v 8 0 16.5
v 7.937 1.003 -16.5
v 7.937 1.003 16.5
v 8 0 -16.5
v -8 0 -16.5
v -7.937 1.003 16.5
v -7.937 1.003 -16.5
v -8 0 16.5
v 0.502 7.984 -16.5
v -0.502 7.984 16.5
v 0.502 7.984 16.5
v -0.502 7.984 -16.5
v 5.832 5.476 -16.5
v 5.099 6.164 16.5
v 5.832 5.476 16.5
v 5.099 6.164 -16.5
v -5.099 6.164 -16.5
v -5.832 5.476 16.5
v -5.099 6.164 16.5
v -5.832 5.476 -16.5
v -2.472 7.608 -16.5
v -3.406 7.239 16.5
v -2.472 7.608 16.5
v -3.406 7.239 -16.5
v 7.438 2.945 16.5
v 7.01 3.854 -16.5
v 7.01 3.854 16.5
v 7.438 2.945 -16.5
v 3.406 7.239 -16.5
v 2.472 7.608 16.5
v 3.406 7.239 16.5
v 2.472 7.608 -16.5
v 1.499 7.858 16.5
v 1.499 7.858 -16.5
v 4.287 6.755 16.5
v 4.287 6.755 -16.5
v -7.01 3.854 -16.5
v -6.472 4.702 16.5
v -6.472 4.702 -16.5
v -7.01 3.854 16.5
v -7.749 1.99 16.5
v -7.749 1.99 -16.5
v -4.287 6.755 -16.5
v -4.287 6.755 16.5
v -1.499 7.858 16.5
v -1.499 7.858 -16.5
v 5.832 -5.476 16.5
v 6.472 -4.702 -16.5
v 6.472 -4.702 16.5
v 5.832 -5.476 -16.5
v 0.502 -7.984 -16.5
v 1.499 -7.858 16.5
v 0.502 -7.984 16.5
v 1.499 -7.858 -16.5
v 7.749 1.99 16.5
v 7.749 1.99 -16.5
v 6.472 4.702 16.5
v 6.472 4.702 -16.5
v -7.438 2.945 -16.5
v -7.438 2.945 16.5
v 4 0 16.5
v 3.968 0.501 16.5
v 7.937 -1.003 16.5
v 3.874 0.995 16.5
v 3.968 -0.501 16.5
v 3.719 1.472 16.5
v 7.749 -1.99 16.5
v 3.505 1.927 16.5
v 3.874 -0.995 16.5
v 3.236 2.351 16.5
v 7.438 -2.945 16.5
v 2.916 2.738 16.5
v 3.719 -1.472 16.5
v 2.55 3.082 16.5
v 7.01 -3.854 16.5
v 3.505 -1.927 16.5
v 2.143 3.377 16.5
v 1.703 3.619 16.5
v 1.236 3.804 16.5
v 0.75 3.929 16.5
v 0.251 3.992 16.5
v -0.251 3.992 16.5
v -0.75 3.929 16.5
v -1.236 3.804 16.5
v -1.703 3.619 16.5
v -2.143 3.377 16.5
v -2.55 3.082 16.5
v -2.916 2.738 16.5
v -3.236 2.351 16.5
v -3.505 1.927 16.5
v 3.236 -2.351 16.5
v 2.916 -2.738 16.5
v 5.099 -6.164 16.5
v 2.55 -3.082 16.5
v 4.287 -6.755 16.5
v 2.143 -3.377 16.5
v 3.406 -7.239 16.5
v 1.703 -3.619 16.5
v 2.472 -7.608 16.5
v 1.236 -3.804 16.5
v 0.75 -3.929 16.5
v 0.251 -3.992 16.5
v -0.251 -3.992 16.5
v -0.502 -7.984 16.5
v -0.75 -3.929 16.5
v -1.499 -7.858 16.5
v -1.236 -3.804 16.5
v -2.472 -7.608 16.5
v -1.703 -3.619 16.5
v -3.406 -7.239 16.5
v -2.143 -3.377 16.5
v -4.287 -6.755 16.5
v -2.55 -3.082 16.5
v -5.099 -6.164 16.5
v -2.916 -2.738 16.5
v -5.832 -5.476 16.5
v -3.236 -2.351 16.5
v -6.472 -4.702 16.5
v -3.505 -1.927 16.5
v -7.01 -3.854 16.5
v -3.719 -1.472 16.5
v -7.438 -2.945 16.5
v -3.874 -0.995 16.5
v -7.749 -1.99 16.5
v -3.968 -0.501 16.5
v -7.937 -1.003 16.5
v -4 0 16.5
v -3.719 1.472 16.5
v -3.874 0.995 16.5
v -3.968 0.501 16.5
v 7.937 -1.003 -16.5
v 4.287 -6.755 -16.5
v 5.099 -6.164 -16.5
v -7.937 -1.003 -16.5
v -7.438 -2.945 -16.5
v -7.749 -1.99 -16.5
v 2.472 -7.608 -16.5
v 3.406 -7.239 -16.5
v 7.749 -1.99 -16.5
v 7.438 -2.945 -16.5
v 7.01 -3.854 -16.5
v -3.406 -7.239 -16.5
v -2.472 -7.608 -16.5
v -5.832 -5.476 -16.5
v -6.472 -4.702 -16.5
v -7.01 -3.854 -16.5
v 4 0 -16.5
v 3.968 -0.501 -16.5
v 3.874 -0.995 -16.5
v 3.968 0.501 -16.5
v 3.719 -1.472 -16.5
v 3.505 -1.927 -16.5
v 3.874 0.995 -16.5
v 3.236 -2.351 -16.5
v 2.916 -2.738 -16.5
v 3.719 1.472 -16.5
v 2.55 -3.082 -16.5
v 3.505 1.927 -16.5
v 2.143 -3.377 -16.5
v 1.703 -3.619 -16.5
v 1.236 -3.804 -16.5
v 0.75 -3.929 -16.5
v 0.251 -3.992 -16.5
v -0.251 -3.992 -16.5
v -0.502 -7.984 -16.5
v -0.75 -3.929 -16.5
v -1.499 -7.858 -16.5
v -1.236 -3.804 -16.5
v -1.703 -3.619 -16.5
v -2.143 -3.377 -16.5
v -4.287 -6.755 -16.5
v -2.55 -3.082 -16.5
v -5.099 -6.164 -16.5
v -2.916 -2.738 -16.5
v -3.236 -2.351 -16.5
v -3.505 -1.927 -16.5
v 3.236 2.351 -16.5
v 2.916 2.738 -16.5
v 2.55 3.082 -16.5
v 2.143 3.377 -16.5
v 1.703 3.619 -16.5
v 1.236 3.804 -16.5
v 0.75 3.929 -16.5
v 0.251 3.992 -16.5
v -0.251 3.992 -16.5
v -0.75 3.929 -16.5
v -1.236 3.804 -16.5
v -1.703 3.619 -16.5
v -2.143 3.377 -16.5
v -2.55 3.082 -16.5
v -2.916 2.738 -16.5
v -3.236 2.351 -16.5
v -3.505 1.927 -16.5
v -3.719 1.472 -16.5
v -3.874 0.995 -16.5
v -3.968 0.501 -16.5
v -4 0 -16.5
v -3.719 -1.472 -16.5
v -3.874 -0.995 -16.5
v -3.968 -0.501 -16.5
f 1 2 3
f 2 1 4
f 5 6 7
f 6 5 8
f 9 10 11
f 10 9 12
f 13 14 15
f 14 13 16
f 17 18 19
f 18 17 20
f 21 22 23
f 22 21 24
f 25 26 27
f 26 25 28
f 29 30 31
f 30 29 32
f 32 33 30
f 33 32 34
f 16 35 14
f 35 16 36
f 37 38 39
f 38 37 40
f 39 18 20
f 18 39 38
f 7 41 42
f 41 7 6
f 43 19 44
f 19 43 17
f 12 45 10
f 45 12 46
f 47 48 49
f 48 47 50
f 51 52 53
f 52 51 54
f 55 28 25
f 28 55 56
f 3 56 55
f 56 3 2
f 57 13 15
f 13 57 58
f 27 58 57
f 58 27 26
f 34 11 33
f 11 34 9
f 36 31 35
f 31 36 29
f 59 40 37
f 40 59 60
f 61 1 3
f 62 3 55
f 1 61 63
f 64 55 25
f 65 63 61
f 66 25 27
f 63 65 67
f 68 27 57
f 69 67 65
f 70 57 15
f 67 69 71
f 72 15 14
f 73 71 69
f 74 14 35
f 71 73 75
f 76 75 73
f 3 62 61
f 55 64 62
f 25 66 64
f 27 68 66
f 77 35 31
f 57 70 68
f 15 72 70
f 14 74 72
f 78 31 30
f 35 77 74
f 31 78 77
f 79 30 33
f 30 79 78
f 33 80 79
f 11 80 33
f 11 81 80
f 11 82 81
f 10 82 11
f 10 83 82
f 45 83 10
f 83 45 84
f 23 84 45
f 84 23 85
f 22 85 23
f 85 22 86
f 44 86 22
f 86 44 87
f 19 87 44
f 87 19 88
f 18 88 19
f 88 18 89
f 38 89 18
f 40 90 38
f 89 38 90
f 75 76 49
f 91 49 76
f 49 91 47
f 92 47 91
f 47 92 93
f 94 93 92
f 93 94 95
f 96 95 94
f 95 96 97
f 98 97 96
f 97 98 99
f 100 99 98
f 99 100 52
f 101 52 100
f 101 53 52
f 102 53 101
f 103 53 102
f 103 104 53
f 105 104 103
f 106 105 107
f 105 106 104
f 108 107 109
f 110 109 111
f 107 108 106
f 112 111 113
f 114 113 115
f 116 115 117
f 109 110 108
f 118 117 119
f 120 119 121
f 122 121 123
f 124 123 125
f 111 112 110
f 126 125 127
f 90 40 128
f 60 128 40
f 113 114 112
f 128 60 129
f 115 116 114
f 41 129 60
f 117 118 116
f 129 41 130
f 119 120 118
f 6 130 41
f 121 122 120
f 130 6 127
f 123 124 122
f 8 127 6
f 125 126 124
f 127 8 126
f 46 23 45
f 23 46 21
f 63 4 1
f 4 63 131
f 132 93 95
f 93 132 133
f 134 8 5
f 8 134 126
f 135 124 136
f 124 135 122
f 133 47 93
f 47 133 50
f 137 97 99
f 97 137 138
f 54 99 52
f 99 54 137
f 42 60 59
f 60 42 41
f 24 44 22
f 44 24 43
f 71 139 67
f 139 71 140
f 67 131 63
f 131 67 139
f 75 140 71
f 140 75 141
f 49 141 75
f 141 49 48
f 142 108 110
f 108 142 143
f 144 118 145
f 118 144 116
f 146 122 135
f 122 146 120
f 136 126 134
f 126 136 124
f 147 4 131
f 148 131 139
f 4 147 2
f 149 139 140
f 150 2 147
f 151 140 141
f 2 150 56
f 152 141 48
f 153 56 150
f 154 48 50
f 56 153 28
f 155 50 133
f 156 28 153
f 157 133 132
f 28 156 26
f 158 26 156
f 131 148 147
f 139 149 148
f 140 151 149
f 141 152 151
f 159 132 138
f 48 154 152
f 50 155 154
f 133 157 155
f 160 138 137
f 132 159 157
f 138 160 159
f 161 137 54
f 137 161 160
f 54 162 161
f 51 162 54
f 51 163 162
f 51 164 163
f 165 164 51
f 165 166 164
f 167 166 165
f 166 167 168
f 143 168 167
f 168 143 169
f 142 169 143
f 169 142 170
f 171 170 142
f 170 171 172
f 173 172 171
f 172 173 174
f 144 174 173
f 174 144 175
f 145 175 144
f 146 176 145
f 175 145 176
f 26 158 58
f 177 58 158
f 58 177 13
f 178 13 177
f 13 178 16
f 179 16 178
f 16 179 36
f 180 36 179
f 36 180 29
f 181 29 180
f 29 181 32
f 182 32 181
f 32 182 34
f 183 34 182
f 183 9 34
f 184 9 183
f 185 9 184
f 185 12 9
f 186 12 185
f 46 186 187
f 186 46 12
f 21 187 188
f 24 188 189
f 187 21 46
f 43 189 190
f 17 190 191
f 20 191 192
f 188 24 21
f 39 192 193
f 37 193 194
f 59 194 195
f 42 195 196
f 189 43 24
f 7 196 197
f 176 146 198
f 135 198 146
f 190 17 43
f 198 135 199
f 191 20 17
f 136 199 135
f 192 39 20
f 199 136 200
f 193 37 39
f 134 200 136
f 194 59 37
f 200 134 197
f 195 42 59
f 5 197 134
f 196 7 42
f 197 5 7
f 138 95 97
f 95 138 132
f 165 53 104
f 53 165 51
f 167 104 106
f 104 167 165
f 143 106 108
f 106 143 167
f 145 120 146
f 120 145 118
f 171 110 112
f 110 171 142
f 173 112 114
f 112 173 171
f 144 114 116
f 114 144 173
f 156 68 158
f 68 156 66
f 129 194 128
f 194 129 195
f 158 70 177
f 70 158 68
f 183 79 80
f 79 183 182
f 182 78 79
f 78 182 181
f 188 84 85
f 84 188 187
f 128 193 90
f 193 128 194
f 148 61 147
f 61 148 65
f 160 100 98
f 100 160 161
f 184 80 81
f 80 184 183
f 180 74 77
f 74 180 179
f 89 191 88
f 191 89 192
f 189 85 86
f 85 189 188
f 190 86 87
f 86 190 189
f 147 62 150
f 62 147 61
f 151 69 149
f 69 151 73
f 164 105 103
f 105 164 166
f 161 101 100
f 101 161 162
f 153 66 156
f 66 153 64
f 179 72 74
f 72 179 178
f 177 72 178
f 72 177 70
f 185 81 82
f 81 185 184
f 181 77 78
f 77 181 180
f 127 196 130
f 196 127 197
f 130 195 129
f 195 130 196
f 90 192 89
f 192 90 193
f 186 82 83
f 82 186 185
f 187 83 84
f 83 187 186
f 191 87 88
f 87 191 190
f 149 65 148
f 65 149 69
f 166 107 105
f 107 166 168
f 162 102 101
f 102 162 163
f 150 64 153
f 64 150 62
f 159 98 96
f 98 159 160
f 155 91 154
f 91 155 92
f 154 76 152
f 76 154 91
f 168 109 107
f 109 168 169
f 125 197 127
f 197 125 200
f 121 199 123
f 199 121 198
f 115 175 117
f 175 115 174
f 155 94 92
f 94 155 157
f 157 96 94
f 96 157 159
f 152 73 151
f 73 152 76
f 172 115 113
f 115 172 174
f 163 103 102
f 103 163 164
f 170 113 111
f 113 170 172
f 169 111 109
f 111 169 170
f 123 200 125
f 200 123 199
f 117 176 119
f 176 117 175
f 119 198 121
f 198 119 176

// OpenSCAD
$fn = 50;


difference() {
	union() {
		translate(v = [0, 0, -16.5000000000]) {
			cylinder(h = 33, r = 8.0000000000);
		}
	}
	union() {
		translate(v = [0, 0, -100.0000000000]) {
			cylinder(h = 200, r = 4.0000000000);
		}
	}
}
